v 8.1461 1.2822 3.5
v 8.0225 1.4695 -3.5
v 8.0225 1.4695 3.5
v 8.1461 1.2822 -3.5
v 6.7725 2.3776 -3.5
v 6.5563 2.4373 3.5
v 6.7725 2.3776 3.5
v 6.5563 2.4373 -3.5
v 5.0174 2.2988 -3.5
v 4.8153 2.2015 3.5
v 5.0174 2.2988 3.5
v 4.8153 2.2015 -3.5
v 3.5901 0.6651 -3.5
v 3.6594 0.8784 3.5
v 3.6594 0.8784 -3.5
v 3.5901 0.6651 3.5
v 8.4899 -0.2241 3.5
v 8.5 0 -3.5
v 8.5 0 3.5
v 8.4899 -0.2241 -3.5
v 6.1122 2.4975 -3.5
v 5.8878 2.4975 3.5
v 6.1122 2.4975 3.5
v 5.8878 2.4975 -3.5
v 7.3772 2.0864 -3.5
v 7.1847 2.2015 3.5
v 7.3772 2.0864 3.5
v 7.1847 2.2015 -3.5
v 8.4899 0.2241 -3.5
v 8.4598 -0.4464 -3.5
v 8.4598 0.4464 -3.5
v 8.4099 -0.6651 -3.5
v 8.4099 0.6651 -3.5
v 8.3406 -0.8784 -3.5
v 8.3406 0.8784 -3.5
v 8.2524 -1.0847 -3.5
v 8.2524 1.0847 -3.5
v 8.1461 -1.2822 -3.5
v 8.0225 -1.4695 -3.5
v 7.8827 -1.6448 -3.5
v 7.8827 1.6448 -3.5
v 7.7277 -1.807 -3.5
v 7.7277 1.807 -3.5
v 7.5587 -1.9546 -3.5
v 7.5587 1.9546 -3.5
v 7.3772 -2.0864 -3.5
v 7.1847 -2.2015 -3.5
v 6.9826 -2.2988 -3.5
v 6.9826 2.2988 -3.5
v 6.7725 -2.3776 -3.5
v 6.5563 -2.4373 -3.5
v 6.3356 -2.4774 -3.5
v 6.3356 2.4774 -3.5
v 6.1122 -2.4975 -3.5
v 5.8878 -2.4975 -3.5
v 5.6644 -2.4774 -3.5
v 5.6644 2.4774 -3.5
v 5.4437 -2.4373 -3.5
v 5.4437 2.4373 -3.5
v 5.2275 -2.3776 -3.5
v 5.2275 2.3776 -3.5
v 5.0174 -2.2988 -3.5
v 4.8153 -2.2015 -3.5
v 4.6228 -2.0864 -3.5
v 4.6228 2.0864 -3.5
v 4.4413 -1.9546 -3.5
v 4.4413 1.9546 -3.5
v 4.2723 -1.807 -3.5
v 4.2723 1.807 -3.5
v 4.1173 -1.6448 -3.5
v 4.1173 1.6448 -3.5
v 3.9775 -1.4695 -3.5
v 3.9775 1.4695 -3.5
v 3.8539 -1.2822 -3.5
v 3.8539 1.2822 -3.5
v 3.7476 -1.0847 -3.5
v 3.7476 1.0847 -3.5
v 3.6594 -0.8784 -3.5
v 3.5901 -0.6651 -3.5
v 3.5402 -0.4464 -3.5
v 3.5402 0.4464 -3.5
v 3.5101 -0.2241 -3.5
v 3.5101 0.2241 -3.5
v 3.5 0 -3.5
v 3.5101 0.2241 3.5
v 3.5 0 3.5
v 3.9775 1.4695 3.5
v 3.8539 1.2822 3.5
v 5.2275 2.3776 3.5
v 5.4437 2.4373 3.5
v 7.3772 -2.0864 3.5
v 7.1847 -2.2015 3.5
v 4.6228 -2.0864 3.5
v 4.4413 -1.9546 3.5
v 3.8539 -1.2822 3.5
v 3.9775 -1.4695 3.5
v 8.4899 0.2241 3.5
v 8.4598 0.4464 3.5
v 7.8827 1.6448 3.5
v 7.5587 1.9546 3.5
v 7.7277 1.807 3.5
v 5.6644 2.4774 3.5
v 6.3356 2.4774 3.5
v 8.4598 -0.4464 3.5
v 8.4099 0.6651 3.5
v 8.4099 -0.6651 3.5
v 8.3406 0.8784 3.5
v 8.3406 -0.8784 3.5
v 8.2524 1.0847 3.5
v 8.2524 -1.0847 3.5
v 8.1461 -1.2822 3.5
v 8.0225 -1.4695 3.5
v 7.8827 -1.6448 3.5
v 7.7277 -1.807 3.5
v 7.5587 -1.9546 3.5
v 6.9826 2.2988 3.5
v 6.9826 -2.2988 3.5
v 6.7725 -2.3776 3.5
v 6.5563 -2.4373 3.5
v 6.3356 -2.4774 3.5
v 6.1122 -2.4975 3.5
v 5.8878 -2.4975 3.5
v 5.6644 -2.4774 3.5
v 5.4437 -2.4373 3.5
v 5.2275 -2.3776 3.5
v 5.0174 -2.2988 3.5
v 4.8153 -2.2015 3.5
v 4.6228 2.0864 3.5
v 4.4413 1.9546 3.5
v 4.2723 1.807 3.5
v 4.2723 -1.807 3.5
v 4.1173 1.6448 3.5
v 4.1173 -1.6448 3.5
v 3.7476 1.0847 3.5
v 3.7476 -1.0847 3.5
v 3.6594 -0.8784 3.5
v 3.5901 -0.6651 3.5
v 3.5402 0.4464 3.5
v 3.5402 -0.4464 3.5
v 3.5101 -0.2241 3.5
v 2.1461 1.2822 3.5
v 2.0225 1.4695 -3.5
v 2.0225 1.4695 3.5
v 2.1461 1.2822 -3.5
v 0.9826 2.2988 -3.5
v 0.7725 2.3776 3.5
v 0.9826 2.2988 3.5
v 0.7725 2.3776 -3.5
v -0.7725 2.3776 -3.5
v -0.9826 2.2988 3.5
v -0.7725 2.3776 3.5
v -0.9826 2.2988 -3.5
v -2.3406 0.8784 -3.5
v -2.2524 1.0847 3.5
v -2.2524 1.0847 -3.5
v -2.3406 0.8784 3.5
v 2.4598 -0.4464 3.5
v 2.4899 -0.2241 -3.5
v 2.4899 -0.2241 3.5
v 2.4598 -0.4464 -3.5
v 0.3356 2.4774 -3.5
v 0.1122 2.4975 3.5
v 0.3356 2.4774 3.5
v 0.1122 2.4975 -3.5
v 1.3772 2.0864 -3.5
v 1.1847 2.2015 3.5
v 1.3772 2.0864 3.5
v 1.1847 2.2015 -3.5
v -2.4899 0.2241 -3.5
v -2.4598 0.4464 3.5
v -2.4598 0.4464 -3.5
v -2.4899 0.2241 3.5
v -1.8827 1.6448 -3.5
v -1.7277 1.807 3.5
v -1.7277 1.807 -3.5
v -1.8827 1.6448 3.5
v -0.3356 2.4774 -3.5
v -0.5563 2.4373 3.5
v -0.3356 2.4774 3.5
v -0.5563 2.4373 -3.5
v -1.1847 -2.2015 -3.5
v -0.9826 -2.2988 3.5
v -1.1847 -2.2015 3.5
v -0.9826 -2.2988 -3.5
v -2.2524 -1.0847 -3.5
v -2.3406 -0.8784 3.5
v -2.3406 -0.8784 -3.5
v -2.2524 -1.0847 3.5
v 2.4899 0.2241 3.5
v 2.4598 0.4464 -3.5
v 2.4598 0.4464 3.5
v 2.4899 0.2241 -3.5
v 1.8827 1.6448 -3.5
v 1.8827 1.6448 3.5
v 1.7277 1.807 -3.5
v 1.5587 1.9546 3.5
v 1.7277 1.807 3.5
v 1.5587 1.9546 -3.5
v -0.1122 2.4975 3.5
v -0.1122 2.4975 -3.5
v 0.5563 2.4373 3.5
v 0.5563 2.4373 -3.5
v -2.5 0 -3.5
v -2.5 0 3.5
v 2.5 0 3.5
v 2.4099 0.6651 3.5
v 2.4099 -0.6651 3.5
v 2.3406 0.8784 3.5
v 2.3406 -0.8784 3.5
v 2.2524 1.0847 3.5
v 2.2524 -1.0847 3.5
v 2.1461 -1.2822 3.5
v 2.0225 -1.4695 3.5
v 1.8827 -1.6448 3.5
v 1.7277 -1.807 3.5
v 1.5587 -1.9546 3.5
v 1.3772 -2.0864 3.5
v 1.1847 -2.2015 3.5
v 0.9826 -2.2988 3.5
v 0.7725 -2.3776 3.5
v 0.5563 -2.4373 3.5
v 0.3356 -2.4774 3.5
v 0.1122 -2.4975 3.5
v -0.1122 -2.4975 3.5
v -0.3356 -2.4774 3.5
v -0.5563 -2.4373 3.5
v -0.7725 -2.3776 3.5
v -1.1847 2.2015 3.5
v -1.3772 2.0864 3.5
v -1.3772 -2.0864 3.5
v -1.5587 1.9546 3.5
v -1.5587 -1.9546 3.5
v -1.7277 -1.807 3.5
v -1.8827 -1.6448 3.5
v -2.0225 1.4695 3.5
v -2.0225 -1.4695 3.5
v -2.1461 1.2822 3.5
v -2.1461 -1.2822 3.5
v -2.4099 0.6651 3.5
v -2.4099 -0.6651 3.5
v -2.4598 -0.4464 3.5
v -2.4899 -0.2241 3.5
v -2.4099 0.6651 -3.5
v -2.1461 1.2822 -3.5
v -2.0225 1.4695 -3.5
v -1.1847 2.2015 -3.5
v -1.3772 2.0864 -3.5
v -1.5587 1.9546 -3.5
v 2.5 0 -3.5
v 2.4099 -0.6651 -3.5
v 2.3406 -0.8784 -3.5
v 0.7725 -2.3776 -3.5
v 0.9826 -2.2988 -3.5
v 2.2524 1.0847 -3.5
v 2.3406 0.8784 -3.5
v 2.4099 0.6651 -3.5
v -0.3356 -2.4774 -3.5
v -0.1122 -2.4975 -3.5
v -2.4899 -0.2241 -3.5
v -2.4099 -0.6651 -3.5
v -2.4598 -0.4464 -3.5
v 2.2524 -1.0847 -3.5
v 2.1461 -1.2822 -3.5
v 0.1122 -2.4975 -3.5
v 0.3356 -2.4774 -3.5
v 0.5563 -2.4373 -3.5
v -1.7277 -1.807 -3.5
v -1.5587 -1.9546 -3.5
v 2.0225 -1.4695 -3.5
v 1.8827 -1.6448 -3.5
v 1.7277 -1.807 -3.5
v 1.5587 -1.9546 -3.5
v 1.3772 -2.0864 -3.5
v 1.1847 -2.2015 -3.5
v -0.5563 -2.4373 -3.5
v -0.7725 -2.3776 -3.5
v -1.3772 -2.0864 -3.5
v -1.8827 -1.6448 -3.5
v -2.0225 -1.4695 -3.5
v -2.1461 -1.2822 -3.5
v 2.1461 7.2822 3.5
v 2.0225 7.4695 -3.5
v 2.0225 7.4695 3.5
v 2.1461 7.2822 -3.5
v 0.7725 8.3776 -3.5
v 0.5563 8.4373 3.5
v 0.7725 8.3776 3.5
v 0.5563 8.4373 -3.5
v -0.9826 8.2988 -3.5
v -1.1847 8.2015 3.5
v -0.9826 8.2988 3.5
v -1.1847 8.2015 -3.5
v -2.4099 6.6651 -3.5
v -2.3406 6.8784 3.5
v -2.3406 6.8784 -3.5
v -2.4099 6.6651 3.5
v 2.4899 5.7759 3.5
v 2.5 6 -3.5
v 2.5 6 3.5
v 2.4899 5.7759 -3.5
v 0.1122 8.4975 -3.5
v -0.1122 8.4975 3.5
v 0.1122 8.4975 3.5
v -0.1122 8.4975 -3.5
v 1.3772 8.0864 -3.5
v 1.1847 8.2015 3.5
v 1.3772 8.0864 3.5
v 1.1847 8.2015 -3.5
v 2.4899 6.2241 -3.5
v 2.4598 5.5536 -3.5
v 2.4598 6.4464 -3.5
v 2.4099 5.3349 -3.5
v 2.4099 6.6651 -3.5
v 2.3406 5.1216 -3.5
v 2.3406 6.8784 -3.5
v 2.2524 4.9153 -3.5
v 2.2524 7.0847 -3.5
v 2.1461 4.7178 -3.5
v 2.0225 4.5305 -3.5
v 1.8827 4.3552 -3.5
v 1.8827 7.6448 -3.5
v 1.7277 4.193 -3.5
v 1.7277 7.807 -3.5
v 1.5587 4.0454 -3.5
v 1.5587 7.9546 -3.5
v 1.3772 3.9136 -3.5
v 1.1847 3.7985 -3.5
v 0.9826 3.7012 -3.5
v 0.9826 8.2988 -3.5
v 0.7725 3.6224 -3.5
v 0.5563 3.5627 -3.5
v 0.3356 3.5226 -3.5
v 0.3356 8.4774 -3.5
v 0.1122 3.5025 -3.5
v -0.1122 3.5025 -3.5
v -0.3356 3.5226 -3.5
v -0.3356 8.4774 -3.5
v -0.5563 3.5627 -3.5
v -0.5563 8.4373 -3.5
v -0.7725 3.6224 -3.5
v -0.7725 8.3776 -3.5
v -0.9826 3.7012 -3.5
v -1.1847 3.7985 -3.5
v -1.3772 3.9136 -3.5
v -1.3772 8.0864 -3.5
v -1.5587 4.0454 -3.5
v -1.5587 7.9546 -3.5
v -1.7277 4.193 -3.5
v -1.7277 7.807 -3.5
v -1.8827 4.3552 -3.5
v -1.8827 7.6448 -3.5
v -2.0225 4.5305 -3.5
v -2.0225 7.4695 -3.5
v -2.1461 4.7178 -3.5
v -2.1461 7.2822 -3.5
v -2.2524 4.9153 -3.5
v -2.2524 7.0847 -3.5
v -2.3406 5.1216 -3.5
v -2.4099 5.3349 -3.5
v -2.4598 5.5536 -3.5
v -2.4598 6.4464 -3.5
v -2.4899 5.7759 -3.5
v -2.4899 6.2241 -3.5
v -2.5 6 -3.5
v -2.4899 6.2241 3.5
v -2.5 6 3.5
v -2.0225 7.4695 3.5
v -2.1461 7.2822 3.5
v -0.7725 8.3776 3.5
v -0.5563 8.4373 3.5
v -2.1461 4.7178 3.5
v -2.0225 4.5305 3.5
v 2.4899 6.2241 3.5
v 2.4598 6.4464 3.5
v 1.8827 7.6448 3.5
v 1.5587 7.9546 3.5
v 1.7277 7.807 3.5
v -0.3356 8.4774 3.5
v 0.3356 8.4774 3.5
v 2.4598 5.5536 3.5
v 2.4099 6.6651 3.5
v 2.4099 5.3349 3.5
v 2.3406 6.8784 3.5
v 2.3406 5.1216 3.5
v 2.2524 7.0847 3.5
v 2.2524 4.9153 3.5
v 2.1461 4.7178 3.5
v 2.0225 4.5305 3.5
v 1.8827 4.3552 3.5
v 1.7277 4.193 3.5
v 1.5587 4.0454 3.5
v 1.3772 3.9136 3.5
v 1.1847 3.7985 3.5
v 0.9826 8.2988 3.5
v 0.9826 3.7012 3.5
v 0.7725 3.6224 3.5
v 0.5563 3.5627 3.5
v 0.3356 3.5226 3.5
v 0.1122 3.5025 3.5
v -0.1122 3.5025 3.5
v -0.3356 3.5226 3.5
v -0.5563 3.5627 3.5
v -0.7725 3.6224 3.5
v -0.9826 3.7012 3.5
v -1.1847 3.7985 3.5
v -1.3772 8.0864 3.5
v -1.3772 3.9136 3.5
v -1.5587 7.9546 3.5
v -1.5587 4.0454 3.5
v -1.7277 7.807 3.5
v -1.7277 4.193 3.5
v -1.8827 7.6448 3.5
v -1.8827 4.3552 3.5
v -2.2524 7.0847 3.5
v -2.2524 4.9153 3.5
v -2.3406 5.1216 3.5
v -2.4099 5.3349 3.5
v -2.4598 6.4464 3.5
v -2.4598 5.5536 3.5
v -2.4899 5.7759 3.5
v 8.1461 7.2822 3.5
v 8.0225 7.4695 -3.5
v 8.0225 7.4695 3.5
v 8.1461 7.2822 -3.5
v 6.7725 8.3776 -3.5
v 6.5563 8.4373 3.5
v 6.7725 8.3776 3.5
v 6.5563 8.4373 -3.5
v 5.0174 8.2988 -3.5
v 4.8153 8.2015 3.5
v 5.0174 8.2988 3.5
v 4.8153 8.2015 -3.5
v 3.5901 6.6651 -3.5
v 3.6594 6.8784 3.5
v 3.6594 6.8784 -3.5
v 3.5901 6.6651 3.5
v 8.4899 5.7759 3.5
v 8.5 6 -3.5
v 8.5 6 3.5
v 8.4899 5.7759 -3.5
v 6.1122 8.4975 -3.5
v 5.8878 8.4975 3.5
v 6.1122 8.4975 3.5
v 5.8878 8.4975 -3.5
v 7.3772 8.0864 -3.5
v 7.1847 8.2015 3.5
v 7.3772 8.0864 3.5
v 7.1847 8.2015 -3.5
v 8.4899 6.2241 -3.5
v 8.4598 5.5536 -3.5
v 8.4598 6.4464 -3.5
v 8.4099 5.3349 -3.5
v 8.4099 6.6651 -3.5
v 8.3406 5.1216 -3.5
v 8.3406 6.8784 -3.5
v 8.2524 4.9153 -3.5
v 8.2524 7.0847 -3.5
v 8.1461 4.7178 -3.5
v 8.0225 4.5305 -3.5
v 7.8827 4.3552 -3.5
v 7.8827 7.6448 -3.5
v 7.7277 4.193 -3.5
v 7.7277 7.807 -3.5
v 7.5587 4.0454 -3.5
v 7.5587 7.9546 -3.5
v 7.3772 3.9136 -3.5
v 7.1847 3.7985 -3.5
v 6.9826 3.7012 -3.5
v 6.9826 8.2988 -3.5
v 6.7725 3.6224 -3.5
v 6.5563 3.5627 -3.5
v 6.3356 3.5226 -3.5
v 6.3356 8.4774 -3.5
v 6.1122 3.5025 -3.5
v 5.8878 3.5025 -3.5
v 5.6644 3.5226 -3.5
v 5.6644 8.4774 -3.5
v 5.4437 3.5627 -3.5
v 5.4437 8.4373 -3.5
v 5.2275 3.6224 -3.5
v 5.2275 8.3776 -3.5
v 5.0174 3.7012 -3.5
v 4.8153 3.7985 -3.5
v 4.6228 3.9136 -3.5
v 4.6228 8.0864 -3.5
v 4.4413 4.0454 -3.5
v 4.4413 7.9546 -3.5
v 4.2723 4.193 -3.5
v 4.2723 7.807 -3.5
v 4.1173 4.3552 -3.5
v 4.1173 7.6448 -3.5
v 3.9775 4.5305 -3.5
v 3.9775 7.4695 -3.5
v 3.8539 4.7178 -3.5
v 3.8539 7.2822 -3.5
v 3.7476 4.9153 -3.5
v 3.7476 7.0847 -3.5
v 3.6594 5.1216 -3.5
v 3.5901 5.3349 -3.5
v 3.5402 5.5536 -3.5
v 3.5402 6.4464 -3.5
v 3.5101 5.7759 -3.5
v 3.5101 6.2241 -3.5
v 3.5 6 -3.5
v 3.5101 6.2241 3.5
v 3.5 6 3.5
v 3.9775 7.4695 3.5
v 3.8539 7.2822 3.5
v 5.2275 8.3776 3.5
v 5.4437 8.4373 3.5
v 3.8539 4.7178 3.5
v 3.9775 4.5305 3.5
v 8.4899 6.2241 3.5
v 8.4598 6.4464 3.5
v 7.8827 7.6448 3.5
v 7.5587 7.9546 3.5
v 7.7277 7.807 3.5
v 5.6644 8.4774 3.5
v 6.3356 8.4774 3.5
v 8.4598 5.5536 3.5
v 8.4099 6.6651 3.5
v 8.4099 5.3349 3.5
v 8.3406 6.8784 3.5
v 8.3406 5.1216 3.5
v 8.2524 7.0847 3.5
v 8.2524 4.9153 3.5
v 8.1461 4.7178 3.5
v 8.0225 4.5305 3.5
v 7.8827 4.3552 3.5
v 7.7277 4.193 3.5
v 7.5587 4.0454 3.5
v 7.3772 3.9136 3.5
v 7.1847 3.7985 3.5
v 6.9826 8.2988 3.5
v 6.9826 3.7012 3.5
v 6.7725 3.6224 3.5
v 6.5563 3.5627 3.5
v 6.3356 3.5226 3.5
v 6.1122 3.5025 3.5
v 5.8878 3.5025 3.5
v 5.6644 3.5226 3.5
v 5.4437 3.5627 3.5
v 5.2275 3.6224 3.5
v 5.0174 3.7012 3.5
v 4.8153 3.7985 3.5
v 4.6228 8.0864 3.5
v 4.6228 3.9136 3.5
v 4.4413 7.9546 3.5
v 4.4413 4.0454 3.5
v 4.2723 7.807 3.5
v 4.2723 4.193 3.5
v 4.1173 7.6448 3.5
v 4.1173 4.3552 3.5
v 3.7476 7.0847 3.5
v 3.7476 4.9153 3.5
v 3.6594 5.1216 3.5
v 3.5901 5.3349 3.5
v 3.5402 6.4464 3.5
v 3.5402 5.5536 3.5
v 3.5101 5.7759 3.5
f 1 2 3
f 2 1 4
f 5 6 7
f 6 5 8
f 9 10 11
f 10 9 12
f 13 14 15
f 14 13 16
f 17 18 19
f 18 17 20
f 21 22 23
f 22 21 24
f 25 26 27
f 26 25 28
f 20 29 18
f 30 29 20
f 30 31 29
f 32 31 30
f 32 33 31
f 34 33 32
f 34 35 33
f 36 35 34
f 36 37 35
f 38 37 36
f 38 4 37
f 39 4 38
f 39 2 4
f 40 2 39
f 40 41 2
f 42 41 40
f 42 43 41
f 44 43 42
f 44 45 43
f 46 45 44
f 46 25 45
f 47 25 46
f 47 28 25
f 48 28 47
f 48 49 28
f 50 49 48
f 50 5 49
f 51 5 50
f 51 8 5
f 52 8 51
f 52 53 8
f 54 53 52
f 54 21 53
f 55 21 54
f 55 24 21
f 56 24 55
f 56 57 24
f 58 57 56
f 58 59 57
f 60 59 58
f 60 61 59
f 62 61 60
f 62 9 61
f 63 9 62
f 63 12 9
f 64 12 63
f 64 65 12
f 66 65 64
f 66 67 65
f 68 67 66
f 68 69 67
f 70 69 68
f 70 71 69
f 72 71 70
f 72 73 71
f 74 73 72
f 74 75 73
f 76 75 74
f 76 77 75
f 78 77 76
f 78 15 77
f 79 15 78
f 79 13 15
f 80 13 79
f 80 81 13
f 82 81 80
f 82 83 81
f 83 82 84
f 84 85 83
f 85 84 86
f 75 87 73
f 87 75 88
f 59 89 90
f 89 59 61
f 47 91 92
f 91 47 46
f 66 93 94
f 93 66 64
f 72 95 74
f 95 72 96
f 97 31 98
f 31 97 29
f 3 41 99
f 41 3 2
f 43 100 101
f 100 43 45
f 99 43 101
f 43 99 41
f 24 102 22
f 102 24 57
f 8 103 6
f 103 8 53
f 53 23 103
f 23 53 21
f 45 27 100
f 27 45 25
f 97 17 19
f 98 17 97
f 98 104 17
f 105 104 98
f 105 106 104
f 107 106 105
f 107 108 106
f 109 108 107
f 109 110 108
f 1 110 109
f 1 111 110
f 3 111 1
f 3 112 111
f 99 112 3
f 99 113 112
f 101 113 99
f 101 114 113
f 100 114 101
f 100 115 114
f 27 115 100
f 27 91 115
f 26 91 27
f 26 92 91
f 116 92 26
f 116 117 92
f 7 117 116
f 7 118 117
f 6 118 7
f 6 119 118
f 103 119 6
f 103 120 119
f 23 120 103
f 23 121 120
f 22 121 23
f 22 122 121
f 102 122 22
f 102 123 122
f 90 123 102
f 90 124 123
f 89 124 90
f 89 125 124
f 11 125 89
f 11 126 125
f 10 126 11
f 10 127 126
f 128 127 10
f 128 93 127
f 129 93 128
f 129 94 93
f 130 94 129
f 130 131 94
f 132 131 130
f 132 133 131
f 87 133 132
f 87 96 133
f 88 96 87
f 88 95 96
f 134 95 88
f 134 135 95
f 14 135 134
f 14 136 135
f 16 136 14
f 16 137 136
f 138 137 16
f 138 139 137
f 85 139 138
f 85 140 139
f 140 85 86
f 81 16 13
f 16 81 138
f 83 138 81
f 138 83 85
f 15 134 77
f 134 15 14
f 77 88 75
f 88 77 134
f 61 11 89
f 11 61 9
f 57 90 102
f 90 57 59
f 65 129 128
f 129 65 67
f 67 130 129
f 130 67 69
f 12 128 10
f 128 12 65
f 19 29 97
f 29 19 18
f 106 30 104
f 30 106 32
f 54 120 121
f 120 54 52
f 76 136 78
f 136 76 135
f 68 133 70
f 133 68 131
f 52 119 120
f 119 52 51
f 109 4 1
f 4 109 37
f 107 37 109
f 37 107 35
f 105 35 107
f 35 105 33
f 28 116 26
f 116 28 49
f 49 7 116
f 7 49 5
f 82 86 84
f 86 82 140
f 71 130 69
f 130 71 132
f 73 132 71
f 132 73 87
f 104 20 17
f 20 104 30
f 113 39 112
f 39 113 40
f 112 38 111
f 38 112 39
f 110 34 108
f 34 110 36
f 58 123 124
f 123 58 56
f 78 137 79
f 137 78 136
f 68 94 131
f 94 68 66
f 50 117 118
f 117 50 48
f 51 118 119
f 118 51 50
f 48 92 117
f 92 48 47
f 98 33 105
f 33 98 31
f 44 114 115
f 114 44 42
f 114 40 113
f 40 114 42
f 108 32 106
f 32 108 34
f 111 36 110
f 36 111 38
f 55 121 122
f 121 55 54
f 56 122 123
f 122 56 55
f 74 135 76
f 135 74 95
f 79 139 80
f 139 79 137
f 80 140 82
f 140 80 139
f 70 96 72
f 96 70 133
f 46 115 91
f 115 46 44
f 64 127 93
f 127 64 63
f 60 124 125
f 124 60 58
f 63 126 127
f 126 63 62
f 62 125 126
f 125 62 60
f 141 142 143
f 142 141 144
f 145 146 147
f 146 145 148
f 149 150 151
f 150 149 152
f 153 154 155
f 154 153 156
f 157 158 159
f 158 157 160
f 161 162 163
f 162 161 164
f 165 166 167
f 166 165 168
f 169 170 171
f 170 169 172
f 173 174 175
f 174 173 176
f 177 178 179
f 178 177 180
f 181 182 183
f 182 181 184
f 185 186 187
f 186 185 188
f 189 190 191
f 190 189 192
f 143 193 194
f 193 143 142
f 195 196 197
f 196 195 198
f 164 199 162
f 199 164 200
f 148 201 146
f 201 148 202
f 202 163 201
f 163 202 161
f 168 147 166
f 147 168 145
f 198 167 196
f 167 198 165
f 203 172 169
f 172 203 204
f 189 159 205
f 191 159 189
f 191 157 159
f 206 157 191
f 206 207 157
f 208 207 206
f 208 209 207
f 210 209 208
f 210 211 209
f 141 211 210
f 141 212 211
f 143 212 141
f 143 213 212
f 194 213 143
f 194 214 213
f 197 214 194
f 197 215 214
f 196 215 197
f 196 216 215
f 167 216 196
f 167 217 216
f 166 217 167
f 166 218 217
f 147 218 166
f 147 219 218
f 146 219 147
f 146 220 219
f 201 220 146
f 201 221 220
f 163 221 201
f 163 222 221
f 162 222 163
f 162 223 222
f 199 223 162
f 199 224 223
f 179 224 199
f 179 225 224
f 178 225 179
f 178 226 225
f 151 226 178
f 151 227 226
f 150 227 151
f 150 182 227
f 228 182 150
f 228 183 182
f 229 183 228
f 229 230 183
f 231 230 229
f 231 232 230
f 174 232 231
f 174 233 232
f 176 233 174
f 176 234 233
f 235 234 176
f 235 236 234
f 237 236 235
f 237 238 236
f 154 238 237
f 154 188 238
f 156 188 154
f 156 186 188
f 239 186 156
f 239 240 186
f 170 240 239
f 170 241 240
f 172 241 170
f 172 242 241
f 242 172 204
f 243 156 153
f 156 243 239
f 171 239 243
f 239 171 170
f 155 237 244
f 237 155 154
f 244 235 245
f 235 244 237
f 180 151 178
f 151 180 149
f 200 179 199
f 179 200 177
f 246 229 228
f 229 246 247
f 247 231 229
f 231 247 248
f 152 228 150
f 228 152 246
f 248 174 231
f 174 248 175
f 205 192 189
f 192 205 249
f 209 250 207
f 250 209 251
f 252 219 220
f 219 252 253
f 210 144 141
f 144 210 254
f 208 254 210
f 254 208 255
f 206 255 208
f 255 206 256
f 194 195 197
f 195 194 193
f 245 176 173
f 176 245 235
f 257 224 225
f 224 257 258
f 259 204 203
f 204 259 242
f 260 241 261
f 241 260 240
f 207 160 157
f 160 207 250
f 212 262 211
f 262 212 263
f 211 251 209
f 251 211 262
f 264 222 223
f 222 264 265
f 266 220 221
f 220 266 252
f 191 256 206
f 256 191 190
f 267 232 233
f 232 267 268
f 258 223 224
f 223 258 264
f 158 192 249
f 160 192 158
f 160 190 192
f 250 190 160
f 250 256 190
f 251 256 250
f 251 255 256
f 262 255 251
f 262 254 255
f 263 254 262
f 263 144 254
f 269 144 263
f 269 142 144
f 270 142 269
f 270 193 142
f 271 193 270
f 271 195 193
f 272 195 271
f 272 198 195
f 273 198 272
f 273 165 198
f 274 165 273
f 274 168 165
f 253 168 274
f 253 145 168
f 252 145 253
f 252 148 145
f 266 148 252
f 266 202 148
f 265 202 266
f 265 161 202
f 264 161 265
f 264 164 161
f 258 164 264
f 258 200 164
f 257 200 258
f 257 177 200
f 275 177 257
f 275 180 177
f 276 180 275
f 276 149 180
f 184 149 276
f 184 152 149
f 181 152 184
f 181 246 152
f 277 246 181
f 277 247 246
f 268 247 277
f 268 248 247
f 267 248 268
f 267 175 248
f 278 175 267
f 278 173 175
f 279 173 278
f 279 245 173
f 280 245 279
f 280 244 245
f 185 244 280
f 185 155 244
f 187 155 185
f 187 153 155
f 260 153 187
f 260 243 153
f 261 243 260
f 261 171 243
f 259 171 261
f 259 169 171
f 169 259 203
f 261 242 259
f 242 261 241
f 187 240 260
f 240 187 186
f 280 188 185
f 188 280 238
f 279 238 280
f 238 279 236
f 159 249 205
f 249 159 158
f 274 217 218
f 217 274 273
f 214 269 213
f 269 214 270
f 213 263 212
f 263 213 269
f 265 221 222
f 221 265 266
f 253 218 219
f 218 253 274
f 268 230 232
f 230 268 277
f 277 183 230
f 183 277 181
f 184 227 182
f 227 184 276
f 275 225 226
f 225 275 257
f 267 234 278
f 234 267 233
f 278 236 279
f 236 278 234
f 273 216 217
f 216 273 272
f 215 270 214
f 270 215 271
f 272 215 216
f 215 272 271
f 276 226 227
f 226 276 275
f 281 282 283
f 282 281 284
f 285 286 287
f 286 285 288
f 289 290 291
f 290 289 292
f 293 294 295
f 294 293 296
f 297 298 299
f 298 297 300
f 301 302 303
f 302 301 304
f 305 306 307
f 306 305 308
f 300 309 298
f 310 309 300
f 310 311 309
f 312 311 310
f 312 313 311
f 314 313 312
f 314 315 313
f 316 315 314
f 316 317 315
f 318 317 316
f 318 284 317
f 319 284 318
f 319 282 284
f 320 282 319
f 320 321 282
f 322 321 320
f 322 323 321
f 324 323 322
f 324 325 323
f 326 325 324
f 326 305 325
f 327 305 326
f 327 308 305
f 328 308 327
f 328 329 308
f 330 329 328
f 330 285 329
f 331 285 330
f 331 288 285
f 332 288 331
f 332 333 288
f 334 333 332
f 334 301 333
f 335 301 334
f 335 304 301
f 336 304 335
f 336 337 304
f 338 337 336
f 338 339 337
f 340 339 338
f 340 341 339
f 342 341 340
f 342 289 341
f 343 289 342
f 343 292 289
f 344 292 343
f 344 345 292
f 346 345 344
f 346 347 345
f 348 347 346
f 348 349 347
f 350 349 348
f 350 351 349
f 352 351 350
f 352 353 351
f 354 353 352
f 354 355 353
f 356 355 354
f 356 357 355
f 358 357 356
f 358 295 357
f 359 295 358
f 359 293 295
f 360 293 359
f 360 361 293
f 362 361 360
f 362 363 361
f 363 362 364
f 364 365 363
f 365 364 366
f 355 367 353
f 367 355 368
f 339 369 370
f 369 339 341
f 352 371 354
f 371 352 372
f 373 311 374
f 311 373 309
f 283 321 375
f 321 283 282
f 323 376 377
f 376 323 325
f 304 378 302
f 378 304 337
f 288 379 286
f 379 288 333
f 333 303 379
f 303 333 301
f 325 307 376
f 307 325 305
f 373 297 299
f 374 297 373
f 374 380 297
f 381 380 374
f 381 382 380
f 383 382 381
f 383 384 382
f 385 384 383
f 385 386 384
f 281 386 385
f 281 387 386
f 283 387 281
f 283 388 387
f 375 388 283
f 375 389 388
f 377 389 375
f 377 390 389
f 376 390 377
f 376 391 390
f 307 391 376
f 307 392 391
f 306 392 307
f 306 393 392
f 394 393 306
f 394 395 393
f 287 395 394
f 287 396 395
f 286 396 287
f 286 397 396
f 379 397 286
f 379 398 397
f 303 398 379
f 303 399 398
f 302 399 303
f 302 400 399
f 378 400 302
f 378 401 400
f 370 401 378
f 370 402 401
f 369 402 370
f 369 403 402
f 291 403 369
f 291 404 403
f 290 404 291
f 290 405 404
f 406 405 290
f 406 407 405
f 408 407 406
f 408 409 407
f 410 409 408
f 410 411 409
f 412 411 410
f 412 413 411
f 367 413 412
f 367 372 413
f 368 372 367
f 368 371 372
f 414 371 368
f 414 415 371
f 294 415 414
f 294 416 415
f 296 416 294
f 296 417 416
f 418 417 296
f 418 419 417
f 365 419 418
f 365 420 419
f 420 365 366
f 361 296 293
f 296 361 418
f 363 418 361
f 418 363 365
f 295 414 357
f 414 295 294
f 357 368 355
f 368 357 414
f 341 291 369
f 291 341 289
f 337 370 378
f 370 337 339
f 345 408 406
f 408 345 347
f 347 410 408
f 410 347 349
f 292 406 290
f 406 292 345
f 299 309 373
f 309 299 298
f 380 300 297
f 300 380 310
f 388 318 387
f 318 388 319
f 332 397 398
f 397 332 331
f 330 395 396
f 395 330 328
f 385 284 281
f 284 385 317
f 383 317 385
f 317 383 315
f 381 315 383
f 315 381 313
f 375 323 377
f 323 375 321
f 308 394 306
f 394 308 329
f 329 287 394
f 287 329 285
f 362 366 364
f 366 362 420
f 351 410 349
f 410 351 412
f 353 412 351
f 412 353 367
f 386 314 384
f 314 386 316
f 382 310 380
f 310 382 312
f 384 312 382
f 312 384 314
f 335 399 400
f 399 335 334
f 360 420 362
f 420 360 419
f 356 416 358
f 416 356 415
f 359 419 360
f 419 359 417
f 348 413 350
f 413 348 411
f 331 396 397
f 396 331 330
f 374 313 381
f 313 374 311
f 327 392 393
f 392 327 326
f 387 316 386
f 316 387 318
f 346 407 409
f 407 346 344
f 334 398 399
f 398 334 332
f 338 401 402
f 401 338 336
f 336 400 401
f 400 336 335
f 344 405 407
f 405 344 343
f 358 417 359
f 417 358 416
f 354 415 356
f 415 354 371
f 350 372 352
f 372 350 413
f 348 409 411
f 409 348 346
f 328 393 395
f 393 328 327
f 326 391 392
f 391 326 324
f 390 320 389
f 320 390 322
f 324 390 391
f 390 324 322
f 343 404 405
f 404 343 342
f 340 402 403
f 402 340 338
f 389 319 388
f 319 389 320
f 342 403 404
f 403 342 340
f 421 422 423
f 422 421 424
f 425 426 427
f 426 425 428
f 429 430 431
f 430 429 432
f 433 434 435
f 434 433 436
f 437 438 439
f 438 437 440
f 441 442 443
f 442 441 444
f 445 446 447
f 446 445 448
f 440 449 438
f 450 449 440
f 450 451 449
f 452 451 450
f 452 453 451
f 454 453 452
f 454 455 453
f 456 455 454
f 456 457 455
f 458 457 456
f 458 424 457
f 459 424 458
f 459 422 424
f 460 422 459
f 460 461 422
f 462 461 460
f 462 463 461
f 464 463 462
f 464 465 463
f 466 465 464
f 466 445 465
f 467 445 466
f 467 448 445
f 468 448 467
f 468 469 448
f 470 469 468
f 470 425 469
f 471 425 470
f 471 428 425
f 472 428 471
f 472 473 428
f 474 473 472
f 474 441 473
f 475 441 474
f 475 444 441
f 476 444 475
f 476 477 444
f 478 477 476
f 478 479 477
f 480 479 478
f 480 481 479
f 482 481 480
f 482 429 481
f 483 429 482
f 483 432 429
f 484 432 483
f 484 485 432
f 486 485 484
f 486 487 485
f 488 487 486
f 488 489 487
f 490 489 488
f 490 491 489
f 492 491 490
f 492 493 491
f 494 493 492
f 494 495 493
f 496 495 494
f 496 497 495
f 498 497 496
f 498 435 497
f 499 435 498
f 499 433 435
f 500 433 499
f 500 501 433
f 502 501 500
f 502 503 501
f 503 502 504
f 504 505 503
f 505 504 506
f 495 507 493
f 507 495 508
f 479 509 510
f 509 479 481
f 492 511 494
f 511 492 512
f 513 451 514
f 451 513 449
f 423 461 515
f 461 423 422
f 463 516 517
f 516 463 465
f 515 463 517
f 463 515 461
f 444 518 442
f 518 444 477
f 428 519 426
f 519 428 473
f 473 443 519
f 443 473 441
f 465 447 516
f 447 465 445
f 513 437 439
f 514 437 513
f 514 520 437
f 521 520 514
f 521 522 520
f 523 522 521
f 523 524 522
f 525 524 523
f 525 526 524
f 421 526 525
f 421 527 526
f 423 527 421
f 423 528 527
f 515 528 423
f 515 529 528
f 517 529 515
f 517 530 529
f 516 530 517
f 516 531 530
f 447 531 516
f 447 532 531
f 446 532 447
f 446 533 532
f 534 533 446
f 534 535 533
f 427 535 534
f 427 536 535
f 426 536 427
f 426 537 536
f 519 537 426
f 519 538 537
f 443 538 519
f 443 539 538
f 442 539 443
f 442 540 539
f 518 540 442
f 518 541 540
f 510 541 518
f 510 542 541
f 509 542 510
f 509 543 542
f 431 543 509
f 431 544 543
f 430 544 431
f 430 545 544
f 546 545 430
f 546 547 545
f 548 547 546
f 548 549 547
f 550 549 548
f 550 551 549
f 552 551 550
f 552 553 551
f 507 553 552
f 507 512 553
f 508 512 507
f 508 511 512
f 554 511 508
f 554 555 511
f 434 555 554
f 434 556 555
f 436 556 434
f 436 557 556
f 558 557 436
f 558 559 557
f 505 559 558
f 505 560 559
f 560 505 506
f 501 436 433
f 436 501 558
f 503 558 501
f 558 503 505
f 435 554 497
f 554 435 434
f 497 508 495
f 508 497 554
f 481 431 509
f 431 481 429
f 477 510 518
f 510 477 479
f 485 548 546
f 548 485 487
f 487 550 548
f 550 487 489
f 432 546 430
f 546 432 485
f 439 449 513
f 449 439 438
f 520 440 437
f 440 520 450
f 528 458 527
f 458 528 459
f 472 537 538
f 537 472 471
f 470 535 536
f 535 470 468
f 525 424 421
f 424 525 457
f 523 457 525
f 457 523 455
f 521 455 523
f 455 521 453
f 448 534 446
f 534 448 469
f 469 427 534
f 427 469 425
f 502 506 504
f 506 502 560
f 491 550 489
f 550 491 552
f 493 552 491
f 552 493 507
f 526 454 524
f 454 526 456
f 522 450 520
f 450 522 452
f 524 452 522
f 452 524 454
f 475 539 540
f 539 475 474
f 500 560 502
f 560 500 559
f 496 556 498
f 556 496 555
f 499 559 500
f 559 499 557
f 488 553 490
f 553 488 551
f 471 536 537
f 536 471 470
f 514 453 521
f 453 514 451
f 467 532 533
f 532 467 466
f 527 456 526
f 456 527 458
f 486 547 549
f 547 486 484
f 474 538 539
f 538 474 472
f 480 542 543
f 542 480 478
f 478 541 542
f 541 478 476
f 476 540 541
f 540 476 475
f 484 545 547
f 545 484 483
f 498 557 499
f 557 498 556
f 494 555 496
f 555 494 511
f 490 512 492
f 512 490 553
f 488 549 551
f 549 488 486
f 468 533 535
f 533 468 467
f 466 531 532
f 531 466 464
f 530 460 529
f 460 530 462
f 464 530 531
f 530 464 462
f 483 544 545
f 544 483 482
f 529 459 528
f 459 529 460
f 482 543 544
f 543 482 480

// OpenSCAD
$fn=70;


color( "SlateGray", 1.0 )


translate([6,0,0])
color( "LightSlateGray", 1.0 )
cylinder(h = 7, r1 = 2.5, r2 = 2.5, center = true);

translate([0,0,0])
color( "LightSlateGray", 1.0 )
cylinder(h = 7, r1 = 2.5, r2 = 2.5, center = true);

translate([0,6,0])
color( "LightSlateGray", 1.0 )
cylinder(h = 7, r1 = 2.5, r2 = 2.5, center = true);

translate([6,6,0])
color( "LightSlateGray", 1.0 )
cylinder(h = 7, r1 = 2.5, r2 = 2.5, center = true);
